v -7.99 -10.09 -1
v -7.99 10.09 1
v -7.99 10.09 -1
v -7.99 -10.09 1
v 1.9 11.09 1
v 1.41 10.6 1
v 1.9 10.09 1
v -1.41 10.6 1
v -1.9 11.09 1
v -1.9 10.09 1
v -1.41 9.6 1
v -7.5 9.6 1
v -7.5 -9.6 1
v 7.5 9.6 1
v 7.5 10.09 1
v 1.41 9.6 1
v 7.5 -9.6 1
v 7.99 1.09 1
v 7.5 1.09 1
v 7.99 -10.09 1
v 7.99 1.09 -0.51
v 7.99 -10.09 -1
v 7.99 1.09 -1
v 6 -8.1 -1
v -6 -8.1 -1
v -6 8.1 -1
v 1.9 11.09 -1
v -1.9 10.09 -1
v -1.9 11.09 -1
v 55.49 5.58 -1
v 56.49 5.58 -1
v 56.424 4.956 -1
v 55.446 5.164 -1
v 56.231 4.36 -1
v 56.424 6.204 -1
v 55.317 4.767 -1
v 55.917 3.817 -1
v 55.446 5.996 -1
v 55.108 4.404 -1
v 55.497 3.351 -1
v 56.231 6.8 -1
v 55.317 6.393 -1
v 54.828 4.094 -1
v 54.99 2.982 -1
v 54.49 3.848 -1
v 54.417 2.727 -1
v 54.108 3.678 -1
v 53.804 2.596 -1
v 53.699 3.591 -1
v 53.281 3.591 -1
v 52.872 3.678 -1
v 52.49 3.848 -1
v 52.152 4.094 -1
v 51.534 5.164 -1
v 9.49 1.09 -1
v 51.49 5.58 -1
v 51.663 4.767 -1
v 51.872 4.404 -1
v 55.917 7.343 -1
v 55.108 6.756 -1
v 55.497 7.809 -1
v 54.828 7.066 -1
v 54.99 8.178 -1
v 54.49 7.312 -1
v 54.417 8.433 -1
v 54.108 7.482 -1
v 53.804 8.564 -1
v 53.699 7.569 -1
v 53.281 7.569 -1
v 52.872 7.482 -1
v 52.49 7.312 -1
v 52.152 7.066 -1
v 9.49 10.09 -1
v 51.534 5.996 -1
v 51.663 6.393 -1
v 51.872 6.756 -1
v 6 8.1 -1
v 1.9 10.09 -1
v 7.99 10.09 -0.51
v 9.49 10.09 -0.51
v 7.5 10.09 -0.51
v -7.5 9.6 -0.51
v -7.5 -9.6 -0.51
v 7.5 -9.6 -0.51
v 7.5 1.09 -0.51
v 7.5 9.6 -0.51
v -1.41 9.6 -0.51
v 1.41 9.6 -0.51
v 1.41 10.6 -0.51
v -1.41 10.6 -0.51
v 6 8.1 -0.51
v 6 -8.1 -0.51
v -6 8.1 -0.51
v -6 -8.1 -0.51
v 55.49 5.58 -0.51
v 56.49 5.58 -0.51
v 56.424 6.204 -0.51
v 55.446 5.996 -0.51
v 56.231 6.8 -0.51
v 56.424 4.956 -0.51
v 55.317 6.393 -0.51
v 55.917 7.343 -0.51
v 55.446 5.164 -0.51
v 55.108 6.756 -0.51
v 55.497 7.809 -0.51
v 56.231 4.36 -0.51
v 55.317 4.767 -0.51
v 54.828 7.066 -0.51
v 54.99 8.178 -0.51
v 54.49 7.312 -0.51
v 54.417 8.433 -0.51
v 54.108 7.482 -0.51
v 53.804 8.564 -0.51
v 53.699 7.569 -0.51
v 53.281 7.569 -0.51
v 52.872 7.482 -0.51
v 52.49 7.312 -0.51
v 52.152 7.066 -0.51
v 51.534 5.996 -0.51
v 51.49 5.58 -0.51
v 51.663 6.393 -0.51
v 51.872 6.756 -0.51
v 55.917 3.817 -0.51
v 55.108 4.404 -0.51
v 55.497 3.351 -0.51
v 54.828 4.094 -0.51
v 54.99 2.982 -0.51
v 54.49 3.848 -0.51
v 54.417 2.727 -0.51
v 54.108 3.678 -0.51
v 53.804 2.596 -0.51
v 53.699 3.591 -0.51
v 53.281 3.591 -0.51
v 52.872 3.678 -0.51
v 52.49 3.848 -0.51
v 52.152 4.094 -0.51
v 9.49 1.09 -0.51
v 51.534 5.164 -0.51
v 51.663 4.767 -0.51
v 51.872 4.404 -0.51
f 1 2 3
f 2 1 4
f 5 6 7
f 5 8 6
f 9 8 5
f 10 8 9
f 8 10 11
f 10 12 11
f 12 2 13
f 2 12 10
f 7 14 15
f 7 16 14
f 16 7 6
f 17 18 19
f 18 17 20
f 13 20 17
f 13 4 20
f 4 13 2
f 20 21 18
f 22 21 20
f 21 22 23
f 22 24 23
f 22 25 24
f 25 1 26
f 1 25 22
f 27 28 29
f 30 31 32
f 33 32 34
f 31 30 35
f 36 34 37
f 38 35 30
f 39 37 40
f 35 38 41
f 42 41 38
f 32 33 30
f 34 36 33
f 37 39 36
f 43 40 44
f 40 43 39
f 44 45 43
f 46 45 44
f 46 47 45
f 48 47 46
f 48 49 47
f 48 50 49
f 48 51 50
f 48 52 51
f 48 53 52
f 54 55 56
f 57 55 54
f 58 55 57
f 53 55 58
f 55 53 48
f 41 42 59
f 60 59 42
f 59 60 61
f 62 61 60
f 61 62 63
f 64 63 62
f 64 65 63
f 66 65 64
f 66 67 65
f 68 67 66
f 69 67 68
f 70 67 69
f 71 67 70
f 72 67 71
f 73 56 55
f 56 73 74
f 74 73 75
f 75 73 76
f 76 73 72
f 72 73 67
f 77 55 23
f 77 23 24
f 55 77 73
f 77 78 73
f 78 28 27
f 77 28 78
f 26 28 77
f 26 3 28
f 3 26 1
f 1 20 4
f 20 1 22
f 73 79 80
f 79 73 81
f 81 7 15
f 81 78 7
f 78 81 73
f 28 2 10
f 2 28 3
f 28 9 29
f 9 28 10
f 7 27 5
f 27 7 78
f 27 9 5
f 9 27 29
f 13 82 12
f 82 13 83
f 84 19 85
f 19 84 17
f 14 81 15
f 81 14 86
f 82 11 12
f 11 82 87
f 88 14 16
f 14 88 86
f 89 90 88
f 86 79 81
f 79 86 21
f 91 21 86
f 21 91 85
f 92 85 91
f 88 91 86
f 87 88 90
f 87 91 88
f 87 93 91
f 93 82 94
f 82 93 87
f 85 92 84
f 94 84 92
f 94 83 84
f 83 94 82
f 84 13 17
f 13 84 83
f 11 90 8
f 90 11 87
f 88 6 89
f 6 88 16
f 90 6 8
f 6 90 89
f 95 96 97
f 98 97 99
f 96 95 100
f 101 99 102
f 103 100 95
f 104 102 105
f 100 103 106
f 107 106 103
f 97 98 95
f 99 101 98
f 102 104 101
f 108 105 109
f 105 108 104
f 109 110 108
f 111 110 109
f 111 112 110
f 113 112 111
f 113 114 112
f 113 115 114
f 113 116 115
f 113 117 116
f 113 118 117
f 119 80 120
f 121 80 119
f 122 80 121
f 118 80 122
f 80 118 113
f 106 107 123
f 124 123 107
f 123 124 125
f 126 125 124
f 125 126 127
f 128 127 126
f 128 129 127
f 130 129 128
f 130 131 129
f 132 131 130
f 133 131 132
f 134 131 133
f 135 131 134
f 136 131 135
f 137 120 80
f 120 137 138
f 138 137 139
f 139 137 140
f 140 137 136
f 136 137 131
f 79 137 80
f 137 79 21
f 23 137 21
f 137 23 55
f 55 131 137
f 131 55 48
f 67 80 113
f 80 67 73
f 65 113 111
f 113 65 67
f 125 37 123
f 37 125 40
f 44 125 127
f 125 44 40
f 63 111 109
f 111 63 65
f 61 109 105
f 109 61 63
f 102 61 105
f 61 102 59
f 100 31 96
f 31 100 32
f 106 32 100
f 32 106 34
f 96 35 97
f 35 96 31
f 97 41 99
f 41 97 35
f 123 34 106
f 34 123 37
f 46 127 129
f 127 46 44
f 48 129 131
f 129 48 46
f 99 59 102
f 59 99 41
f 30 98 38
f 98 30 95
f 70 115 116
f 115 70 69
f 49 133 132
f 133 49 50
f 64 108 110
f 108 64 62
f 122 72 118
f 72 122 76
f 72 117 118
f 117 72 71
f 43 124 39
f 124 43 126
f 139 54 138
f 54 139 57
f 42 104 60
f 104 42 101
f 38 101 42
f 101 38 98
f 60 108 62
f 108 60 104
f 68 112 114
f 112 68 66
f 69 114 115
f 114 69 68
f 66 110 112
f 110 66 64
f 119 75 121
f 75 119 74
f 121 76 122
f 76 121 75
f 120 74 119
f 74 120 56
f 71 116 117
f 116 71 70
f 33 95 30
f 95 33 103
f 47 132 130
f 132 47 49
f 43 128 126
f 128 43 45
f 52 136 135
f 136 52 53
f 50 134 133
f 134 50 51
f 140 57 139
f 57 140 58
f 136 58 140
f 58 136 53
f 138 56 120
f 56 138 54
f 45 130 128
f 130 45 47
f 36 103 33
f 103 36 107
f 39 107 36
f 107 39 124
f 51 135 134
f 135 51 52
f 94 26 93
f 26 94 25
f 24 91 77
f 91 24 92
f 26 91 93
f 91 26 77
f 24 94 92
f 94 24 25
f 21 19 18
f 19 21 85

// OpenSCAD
nozzle = 0.49;

flap_width = 9;

difference() {
    union() {
        cube([15+2*nozzle,19.2+2*nozzle,2], center=true);
        translate([0,(19.2+2*nozzle)/2,0]) cube([3.8,2,2], center=true);
    }
    union() {
        translate([0,0,nozzle]) cube([15,19.2,2], center=true);
        translate([0,(19.2)/2,nozzle]) cube([3.8-2*nozzle,2,2], center=true);
    }
    cube([15-3,19.2-3,2], center=true);
    translate([(15+2*nozzle)/2,(19.2+2*nozzle)/2-flap_width/2,nozzle]) cube([2*nozzle,flap_width,2], center=true);
}

difference() {
    translate([(15+2*nozzle)/2, (19.2+2*nozzle)/2-flap_width,-2/2]) hull() {
        difference() {
            cube([1.5, flap_width,nozzle]);
            //translate([0,0,nozzle/2]) cube([nozzle, flap_width, nozzle]);
        }
        
        translate([45.5, 4+nozzle,0]) cylinder(d=6,h=nozzle, $fn=30);
    }
        
    translate([(15+2*nozzle)/2+45.5, (19.2+2*nozzle)/2+nozzle+4-flap_width,-2/2]) cylinder(d=4,h=2, $fn=30);
}
